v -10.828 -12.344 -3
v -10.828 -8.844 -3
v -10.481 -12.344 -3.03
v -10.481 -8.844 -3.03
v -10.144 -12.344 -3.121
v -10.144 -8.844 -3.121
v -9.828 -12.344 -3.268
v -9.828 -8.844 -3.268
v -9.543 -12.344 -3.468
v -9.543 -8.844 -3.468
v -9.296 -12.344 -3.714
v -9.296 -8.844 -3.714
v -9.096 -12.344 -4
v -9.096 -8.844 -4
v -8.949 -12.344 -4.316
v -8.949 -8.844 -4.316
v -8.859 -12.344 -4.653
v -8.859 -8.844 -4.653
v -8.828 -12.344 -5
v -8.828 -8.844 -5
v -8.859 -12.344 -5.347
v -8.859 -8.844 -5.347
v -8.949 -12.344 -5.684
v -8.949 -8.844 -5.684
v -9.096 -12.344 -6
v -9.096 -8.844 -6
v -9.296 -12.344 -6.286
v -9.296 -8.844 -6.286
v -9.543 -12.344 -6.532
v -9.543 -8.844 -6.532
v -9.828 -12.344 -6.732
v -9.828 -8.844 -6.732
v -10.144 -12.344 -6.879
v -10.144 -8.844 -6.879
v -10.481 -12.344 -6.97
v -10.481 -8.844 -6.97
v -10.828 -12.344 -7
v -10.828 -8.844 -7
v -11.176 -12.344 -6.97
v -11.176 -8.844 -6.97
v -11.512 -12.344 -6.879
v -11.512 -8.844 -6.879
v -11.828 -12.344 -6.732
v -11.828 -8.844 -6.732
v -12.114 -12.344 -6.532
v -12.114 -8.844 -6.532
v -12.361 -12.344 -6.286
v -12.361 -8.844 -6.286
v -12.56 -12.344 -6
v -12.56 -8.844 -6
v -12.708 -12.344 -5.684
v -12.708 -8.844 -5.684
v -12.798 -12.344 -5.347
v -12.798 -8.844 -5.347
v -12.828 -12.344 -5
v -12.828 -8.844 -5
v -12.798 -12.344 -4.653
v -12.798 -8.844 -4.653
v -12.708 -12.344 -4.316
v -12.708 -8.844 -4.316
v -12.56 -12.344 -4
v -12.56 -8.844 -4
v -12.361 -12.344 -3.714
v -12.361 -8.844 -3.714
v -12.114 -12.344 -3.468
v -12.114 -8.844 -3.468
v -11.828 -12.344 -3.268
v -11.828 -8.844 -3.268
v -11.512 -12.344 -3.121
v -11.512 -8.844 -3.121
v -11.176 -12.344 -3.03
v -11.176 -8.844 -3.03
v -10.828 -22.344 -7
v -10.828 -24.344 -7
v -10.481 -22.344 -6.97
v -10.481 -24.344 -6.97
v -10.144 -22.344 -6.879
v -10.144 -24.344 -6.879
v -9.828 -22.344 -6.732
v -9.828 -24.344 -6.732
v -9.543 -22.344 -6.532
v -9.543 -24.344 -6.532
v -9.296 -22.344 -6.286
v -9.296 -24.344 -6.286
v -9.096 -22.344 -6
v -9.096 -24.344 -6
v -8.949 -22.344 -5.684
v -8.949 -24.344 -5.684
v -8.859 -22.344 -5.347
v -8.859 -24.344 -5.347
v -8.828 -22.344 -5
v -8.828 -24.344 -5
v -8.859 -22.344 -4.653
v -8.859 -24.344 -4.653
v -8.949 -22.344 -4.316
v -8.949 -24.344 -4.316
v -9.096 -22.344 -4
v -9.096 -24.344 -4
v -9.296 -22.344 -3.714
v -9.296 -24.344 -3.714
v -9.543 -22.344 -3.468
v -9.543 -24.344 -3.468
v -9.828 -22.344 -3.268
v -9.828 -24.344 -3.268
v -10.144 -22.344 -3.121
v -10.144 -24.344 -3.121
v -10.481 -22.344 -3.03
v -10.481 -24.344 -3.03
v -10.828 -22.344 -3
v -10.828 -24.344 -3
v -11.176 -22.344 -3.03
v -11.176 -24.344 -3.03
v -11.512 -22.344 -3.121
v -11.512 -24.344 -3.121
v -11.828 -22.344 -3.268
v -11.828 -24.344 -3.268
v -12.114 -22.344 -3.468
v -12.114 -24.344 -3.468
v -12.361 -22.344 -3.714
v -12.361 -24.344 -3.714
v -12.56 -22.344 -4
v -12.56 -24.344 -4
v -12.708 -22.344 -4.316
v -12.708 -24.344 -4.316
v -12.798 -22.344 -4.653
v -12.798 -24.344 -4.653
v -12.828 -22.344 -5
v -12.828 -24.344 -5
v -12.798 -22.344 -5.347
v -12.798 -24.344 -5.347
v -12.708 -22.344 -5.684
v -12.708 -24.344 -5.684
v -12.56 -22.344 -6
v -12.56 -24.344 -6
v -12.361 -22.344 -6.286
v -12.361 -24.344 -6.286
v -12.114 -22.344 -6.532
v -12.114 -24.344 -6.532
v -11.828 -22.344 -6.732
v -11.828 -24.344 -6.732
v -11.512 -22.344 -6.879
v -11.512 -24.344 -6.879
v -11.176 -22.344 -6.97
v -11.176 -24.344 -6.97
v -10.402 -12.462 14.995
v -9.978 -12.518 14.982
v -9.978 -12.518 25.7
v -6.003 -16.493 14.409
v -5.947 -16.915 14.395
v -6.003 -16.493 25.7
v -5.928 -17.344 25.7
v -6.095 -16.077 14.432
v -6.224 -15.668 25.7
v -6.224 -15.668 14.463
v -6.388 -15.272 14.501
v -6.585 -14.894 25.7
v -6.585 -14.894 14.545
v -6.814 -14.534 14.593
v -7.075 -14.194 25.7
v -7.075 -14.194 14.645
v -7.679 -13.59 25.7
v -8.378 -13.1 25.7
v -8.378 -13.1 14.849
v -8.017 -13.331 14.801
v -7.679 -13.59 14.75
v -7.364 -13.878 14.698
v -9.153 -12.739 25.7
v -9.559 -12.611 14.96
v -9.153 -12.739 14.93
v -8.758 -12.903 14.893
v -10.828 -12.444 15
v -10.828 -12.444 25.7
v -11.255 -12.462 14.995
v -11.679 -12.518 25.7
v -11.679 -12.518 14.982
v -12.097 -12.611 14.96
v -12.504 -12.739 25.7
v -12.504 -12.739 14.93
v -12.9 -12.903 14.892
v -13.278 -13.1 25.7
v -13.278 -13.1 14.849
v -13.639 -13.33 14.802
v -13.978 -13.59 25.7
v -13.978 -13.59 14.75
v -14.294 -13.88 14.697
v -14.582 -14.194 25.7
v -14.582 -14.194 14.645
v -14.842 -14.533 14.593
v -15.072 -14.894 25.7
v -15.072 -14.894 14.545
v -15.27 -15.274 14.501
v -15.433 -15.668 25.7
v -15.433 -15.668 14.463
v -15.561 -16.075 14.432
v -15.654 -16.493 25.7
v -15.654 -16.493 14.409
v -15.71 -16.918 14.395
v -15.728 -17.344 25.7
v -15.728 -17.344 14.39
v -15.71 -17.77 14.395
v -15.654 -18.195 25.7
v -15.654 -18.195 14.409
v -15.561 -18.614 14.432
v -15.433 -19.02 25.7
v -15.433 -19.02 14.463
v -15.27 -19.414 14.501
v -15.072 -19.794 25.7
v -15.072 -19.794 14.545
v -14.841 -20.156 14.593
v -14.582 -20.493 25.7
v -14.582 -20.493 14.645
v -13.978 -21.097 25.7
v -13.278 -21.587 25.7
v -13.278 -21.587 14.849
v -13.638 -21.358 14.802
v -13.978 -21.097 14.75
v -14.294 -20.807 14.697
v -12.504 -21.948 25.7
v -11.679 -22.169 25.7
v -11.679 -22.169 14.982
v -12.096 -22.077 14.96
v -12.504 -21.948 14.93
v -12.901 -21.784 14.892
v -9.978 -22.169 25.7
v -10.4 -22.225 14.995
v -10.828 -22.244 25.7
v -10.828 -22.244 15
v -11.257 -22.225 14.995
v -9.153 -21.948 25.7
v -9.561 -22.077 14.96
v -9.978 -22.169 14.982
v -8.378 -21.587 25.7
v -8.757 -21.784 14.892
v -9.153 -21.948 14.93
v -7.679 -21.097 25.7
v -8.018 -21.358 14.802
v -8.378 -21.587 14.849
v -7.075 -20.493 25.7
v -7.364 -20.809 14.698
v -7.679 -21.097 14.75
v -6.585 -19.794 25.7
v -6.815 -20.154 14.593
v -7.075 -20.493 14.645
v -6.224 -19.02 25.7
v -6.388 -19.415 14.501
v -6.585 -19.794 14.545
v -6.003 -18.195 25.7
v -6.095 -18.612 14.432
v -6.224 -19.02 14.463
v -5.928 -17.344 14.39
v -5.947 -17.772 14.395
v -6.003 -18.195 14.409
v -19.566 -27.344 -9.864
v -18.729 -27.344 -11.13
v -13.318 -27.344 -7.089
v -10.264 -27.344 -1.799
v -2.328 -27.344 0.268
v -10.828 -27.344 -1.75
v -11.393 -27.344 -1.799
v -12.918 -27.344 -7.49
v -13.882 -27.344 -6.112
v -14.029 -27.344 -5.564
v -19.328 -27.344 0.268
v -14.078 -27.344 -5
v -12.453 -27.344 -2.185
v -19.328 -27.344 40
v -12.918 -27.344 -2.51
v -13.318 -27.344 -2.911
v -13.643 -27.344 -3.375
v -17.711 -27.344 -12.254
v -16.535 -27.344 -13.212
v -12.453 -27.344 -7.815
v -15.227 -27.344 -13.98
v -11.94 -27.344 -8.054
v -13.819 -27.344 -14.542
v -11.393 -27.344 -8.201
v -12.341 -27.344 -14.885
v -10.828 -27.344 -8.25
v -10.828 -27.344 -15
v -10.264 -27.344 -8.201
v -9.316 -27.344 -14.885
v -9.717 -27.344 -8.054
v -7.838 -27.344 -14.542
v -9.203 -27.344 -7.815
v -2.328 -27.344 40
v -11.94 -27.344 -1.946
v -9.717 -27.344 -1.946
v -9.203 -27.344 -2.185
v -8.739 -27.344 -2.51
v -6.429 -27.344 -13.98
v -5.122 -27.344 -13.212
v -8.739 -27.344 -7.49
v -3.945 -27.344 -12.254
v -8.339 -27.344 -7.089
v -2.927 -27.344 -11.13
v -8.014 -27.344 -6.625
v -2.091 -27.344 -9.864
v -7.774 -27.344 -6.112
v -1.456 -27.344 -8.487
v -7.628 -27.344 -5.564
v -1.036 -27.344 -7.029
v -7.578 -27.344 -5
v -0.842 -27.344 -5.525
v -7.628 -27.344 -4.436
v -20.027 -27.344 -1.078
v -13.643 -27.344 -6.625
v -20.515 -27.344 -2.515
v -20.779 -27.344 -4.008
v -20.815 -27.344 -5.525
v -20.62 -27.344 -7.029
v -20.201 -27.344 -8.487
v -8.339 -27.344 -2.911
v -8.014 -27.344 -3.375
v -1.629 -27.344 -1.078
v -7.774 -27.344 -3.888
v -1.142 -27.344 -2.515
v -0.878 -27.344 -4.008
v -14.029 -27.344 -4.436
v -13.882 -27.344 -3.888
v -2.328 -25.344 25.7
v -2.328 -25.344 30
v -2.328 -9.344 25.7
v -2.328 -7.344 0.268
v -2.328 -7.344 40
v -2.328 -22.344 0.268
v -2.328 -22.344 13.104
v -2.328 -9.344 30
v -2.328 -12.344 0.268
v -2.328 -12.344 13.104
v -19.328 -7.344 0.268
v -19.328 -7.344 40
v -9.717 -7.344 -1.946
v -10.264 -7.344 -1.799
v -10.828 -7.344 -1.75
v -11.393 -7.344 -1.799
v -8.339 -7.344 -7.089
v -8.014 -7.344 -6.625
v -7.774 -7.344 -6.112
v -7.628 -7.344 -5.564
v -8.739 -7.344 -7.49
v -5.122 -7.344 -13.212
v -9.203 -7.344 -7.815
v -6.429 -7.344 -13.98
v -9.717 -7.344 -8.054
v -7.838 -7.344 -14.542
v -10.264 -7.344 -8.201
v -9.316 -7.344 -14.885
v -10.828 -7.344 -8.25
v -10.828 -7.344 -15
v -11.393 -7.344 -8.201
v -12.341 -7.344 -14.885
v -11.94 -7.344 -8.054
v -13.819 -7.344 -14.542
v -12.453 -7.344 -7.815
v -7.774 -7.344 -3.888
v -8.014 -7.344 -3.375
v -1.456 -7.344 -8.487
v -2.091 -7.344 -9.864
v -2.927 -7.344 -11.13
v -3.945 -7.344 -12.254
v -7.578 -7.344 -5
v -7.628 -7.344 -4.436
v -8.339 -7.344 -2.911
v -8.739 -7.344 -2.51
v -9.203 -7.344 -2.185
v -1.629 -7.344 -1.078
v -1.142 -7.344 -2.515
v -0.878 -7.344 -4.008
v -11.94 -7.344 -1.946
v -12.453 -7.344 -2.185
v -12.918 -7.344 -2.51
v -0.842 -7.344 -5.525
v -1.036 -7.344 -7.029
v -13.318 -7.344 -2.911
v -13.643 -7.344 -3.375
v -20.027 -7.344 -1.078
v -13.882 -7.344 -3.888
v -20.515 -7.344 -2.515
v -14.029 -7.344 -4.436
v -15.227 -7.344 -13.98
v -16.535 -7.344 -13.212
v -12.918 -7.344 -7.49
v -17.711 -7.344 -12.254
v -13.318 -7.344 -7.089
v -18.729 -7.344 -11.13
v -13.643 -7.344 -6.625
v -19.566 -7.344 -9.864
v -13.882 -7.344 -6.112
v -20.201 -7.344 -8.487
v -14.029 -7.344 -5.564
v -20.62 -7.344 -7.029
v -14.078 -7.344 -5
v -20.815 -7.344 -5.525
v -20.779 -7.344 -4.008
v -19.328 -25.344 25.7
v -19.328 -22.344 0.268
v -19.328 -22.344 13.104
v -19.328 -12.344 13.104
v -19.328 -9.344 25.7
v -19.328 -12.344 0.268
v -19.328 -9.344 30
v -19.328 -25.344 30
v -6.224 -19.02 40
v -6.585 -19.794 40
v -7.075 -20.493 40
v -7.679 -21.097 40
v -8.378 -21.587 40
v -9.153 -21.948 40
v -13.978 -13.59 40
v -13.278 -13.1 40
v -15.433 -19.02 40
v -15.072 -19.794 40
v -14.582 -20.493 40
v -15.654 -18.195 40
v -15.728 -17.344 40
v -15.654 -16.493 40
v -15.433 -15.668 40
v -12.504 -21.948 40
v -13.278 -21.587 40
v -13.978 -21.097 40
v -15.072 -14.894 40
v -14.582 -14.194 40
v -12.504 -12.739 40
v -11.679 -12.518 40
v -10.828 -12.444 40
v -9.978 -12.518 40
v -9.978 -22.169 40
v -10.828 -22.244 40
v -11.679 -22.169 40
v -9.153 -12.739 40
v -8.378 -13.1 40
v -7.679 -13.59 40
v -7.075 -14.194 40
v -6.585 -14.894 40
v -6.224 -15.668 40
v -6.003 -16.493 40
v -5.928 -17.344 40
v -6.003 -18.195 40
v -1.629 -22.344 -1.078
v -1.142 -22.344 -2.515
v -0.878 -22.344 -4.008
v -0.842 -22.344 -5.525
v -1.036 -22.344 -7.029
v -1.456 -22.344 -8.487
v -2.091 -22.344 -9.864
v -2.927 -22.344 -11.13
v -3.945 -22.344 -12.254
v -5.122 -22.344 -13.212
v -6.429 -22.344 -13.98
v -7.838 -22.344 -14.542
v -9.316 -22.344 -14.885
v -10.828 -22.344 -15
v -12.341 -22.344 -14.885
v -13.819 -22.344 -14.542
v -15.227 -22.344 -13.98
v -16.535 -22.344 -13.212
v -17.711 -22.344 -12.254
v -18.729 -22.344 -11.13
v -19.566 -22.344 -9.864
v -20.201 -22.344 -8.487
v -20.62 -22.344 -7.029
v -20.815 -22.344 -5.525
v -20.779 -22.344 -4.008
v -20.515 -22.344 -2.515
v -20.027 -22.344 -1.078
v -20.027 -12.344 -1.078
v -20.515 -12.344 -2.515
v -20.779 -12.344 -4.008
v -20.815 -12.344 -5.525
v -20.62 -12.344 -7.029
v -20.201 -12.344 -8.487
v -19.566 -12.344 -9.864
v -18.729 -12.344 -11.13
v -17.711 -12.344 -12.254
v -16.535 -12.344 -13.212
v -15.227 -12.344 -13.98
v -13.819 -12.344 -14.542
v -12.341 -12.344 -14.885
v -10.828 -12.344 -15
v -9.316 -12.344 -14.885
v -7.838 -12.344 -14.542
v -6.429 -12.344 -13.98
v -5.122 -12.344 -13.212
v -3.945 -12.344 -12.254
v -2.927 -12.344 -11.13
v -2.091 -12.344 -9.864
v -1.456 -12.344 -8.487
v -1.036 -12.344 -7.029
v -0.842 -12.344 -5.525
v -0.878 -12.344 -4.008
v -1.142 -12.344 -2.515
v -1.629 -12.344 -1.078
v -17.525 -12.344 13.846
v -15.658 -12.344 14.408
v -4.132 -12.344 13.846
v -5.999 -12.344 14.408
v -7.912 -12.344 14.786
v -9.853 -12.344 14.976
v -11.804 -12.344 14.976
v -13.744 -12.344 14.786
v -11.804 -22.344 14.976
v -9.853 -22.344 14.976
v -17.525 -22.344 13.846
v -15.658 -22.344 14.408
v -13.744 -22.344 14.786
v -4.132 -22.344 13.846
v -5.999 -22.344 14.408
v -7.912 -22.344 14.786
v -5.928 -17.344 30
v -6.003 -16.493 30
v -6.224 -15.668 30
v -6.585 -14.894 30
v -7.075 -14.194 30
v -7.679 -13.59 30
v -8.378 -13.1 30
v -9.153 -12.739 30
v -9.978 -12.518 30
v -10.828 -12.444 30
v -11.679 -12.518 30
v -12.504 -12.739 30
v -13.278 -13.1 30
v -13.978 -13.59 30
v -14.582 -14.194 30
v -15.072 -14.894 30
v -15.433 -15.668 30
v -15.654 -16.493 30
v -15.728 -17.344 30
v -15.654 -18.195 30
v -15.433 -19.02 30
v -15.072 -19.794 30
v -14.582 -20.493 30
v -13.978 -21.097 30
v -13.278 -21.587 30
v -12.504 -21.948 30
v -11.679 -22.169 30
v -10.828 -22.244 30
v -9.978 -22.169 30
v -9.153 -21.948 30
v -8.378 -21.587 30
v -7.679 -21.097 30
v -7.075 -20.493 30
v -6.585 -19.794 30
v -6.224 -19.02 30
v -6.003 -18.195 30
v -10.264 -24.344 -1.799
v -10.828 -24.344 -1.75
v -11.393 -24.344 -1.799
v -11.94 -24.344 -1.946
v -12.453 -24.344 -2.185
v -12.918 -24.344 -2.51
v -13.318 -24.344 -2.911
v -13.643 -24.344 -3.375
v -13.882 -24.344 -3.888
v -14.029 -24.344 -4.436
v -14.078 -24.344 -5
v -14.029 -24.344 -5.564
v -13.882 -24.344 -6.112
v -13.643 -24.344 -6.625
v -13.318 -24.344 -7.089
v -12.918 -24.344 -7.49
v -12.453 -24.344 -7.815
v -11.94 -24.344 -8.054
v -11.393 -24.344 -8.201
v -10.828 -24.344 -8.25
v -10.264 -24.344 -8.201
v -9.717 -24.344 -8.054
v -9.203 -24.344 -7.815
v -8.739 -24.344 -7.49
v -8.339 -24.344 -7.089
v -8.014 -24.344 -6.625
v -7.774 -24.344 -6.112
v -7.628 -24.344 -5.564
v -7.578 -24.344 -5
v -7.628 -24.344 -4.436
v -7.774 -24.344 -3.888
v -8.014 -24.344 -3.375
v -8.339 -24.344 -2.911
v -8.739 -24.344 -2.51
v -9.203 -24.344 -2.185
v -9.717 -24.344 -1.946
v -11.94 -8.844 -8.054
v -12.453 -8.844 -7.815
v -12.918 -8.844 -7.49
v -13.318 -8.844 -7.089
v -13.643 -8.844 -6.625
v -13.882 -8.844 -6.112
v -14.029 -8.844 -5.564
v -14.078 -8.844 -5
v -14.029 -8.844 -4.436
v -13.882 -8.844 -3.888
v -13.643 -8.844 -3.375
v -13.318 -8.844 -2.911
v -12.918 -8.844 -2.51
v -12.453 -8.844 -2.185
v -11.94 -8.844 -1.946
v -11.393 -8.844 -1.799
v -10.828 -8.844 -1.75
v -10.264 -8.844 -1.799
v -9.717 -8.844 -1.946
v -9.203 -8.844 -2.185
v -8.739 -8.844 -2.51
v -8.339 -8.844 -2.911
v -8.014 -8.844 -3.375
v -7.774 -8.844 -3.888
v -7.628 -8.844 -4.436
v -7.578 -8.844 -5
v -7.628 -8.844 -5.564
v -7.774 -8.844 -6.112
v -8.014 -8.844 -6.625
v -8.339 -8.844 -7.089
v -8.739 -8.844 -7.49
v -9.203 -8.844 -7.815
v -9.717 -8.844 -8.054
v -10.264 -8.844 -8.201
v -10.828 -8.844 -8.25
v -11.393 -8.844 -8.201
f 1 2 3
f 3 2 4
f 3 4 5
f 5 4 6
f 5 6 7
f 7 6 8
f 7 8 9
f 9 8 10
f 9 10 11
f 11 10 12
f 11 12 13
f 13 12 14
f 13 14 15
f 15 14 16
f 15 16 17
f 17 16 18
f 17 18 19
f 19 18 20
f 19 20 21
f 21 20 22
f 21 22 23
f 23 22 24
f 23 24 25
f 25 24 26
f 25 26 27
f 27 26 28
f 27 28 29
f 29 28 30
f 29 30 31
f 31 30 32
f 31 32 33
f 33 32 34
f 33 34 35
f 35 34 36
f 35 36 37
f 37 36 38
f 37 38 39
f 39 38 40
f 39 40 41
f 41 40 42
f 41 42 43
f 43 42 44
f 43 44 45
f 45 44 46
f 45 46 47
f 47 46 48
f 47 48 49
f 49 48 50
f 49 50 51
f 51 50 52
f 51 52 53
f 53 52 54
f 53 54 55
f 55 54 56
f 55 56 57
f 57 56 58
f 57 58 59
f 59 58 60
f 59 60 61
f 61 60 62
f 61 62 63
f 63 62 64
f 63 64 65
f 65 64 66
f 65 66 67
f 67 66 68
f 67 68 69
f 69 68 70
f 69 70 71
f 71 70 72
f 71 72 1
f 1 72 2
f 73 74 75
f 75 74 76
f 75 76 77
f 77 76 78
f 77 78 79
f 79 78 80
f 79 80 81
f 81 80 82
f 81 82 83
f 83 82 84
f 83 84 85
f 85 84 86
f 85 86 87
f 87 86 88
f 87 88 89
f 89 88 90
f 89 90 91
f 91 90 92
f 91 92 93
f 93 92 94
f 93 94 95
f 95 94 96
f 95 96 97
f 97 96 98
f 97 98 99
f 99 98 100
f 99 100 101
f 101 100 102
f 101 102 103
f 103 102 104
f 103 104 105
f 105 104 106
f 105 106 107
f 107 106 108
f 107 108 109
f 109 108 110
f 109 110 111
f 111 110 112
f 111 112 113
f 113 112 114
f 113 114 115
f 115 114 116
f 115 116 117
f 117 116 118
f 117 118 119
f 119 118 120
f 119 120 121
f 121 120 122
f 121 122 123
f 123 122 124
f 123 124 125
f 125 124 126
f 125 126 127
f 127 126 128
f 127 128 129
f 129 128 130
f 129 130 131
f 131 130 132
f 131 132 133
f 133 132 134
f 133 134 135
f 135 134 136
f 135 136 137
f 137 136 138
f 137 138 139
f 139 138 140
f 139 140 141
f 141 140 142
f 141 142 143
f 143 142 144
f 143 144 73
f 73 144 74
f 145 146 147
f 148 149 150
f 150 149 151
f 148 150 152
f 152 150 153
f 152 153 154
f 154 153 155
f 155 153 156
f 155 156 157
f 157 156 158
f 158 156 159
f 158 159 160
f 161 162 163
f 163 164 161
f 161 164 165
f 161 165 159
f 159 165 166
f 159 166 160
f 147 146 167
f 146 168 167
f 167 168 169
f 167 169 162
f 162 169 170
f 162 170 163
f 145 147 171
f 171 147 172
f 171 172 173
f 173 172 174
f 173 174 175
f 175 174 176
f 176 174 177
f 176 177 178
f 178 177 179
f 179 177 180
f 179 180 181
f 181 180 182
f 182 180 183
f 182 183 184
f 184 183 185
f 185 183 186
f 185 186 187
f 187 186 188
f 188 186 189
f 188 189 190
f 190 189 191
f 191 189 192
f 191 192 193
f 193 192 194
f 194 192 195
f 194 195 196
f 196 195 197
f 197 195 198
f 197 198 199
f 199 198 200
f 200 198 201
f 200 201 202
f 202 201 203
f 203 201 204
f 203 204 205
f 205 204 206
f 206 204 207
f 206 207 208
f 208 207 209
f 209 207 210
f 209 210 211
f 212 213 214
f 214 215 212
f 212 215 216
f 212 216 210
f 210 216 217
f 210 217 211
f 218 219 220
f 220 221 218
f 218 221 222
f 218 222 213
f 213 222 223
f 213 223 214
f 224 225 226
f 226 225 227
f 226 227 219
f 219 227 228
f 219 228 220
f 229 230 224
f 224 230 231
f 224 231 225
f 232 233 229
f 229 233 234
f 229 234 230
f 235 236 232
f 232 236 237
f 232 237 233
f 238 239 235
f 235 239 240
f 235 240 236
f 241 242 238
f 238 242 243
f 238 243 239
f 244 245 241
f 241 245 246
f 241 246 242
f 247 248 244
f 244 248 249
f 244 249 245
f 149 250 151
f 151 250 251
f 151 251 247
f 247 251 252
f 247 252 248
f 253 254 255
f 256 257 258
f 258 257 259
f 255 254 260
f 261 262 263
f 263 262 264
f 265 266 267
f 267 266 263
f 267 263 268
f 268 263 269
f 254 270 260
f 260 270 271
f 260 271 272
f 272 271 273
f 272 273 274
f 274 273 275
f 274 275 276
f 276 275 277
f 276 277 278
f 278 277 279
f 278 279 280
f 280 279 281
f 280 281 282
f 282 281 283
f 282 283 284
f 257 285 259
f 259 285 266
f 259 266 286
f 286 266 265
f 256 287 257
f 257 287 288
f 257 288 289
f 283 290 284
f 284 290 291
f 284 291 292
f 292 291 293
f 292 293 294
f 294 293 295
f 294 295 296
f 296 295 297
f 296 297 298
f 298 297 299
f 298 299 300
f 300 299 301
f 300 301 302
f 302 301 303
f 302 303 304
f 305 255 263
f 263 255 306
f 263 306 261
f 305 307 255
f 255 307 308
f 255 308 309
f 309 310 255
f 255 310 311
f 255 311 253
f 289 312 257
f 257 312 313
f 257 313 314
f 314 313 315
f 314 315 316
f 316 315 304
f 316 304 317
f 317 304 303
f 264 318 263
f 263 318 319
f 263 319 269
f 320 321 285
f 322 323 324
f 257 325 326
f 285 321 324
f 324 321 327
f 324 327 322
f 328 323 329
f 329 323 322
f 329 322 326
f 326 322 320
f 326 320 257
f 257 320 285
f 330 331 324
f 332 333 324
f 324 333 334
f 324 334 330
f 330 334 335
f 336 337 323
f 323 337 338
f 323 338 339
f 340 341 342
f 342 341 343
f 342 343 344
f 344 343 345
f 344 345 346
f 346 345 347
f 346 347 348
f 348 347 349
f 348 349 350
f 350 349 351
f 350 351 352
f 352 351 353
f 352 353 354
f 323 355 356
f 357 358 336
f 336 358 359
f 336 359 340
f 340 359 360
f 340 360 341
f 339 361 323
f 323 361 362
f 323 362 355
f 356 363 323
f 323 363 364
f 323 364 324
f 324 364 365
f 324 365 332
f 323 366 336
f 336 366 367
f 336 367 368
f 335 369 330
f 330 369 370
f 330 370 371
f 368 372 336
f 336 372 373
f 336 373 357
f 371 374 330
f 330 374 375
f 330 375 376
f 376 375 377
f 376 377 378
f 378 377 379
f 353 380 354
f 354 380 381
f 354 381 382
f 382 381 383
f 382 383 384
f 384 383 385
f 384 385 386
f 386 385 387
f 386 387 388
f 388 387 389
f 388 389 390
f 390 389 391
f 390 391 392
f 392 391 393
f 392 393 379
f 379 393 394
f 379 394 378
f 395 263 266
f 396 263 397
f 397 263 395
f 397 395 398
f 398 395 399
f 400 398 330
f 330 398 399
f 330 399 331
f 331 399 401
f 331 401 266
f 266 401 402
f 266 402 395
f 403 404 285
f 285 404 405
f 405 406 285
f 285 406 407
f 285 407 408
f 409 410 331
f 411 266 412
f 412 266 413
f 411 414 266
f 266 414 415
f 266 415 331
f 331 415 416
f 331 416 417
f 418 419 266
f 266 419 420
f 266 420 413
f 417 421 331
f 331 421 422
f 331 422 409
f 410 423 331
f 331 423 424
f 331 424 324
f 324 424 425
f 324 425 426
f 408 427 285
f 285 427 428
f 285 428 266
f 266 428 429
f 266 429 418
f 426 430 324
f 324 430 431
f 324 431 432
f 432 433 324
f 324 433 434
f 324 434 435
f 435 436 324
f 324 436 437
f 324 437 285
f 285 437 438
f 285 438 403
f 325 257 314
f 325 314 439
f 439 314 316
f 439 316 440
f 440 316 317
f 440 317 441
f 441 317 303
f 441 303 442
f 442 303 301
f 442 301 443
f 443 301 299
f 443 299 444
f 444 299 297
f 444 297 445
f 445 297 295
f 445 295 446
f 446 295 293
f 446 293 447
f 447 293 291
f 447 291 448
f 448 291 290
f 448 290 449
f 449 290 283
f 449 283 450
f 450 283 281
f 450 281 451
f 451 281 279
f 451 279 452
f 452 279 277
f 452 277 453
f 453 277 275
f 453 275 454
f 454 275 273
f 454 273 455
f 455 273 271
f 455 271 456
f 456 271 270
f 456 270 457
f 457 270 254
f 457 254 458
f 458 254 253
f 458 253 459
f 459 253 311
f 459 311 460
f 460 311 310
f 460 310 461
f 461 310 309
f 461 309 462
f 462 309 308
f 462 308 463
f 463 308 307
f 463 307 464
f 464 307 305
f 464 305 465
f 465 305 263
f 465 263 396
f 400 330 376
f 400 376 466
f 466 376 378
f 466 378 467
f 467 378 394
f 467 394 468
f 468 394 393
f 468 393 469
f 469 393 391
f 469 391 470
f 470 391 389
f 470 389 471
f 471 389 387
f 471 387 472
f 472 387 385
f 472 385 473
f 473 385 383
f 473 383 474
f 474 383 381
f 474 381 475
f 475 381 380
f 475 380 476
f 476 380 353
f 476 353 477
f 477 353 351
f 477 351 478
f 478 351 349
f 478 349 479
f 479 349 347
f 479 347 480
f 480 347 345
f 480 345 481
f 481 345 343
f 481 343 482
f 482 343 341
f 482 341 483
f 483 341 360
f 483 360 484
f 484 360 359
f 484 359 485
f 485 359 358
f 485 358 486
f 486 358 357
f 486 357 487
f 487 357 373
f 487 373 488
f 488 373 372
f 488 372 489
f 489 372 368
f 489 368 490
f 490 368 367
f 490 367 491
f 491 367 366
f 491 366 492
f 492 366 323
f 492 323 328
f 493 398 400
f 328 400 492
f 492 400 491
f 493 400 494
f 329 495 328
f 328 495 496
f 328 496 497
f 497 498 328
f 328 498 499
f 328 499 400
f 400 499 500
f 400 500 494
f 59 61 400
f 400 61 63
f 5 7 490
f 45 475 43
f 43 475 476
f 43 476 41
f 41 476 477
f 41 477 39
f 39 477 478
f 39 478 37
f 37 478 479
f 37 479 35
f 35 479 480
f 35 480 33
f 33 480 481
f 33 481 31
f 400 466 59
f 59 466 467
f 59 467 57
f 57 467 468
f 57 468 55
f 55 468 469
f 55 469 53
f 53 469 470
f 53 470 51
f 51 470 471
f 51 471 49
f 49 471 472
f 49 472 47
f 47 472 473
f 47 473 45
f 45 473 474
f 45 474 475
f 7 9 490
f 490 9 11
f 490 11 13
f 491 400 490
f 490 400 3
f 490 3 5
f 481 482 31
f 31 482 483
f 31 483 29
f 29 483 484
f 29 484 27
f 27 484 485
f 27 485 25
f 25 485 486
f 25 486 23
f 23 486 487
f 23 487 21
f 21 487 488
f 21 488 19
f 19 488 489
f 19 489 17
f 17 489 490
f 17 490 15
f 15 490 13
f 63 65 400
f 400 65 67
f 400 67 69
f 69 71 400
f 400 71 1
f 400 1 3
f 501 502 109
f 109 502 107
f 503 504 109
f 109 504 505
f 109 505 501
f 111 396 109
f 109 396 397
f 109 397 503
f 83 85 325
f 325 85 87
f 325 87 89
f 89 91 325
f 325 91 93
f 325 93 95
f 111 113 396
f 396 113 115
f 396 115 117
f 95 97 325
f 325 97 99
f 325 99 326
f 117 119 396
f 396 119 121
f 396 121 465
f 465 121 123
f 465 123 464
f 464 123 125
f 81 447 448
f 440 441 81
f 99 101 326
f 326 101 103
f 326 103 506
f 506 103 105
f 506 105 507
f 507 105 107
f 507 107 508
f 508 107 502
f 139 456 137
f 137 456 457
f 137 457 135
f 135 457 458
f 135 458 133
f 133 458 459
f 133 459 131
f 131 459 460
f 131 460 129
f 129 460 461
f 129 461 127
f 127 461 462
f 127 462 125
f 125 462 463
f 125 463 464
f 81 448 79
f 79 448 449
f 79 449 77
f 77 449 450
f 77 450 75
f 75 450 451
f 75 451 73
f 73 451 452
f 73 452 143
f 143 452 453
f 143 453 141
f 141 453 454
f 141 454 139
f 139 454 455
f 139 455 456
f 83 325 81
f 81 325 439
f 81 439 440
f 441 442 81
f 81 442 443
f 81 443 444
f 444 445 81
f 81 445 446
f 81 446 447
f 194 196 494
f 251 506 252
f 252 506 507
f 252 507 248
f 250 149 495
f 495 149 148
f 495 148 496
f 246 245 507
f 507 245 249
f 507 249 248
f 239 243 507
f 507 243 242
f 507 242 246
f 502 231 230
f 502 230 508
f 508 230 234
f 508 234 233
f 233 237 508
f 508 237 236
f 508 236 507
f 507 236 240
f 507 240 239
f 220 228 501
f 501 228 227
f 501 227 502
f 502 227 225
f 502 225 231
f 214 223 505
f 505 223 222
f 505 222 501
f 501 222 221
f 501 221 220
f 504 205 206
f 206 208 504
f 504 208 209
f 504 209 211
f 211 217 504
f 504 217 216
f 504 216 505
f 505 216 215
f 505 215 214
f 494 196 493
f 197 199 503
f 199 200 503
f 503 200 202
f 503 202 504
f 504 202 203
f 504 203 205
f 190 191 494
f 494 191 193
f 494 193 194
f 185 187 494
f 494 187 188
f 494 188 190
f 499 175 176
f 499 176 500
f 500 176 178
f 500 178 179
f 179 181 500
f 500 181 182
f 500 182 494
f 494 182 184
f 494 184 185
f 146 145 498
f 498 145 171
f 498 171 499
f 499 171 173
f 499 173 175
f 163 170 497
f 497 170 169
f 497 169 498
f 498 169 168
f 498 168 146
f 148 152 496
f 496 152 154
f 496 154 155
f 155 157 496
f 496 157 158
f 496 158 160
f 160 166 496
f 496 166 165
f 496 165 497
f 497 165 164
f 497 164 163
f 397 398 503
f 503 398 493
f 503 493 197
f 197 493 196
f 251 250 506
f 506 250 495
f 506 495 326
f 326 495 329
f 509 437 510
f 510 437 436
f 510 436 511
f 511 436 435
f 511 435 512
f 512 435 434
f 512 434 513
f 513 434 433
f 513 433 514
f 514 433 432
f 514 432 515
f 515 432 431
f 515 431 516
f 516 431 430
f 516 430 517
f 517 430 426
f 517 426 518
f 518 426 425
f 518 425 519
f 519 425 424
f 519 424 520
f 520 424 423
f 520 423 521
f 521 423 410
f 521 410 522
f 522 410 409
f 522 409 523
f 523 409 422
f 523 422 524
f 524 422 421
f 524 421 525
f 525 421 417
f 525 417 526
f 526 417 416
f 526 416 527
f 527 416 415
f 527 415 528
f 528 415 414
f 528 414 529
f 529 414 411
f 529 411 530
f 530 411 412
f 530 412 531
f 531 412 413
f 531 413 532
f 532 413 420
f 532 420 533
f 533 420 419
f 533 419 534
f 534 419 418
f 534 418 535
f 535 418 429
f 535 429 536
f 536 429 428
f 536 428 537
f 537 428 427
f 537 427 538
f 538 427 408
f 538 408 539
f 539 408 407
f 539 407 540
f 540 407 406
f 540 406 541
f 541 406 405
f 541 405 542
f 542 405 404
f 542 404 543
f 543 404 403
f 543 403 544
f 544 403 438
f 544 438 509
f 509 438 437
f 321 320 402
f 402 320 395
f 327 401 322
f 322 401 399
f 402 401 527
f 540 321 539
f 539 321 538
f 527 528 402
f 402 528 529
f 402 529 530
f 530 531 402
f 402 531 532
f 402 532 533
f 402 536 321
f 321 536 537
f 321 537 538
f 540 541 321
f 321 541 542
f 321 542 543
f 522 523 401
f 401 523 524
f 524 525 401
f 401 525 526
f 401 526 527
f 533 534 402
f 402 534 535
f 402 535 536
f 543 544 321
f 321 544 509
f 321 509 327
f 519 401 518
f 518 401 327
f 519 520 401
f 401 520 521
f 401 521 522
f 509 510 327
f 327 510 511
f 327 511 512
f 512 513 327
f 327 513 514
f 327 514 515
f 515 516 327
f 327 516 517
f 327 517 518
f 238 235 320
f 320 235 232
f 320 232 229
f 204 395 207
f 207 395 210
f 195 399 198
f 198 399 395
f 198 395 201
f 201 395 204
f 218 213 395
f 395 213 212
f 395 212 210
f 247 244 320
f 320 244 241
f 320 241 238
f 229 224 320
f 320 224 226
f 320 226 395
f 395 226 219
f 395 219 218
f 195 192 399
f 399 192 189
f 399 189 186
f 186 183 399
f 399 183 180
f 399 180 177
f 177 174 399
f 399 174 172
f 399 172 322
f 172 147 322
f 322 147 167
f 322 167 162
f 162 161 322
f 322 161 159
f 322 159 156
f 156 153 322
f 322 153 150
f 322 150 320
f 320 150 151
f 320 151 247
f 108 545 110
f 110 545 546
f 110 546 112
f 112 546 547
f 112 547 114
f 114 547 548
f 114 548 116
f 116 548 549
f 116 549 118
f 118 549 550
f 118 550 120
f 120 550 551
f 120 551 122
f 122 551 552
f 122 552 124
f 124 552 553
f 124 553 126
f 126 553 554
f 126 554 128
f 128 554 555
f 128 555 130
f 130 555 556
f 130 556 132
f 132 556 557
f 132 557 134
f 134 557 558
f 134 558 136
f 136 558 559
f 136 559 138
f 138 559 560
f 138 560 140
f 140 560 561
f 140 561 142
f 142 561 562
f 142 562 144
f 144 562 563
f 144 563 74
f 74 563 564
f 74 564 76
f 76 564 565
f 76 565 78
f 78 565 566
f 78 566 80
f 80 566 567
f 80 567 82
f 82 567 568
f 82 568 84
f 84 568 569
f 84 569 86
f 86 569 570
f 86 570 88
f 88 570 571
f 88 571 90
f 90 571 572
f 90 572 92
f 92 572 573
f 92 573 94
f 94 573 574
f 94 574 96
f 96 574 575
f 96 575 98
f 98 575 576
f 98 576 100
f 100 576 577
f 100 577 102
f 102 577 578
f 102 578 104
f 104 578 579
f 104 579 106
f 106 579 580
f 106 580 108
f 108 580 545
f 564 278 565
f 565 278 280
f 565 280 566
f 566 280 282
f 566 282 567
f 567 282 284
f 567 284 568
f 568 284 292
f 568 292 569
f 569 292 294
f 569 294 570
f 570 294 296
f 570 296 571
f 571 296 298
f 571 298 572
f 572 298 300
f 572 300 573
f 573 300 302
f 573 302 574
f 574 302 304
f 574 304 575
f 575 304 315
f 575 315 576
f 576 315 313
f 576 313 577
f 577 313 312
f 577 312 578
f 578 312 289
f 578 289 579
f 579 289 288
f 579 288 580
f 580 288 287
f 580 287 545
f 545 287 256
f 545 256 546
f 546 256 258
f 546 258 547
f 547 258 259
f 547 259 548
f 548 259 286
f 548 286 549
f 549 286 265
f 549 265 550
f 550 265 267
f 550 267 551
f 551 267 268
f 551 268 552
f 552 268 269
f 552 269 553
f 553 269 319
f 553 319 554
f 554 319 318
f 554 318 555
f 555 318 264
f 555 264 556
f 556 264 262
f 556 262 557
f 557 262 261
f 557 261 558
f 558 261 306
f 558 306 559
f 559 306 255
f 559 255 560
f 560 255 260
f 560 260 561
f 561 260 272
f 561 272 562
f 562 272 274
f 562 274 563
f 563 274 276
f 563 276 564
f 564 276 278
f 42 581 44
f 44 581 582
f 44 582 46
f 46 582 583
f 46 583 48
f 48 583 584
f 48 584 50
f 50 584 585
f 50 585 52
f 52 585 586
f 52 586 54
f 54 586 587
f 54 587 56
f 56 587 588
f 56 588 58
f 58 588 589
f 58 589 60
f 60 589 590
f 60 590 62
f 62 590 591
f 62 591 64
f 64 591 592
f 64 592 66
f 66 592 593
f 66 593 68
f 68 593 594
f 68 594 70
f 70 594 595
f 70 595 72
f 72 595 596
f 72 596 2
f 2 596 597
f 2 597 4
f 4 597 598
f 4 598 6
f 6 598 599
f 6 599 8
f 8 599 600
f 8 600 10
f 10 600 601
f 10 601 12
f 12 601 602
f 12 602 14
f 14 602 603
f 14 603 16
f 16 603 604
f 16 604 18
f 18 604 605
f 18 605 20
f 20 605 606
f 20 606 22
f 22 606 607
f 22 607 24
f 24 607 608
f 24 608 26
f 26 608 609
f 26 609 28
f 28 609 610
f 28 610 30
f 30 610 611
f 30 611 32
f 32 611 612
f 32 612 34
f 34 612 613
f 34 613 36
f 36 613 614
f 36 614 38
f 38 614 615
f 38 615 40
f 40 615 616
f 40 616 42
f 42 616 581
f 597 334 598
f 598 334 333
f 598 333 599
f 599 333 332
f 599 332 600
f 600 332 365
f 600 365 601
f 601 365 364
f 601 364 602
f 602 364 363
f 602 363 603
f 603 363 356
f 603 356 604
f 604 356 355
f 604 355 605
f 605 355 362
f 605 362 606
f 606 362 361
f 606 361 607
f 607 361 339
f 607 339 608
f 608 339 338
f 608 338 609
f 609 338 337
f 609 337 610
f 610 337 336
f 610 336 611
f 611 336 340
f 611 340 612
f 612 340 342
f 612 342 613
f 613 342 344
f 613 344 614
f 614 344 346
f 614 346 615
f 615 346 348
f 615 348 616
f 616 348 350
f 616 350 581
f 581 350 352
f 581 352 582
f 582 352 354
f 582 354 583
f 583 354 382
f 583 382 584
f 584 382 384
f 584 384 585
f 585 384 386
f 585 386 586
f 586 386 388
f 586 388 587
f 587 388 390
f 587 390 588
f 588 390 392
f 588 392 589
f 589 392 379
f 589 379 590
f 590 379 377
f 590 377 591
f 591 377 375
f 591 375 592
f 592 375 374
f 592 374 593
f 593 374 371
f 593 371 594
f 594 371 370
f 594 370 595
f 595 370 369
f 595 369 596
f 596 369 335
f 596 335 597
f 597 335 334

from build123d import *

# Parameters (mm, degrees)
SKETCH_1_W               = 17
SKETCH_1_H               = 20
EXTRUDE_1_DEPTH          = 40
SKETCH_3_R               = 10
SKETCH_3_R_2             = 2
EXTRUDE_2_DEPTH          = 10
EXTRUDE_START            = -5
SKETCH_4_R               = 10
SKETCH_4_R_2             = 2
EXTRUDE_3_DEPTH          = 5
SKETCH_5_R               = 20
CUT_EXTRUDE_1_DEPTH      = 10
CUT_EXTRUDE_2_REACH      = 66.858
CUT_EXTRUDE_2_END_RADIUS = 20
SKETCH_6_R               = 4.9
CUT_EXTRUDE_3_REACH      = 53.865
SKETCH_7_W               = 4.3
SKETCH_7_H               = 16
SKETCH_8_R               = 3.25
CUT_EXTRUDE_4_DEPTH      = 3
CUT_EXTRUDE_START        = -1.5
SKETCH_9_R               = 3.25
CUT_EXTRUDE_5_DEPTH      = 1.5


with BuildPart() as part:
    # 草图1 → 凸台-拉伸1 (new body)
    with BuildSketch(Plane.XY):
        with Locations((-10.828446216, -17.343796091)):
            Rectangle(SKETCH_1_W, SKETCH_1_H)
    extrude(amount=EXTRUDE_1_DEPTH)

    # 草图3 → 凸台-拉伸2 (add)
    with BuildSketch(Plane.XZ.offset(27.343796091)):
        with Locations((-10.828446216, -5)):
            Circle(SKETCH_3_R)
        with Locations(Location((-10.828446216, -5, 0), (0, 0, 270))):
            Circle(SKETCH_3_R_2, mode=Mode.SUBTRACT)
    extrude(amount=-EXTRUDE_2_DEPTH)

    # 草图4 → 凸台-拉伸3 (add)
    with BuildSketch(Plane(origin=(0, -7.343796091, 0), x_dir=(1, 0, 0), z_dir=(0, 1, 0)).offset(EXTRUDE_START)):
        with Locations((-10.828446216, 5)):
            Circle(SKETCH_4_R)
        with Locations(Location((-10.828446216, 5, 0), (0, 0, 90))):
            Circle(SKETCH_4_R_2, mode=Mode.SUBTRACT)
    extrude(amount=EXTRUDE_3_DEPTH)

    # 草图5 → 切除-拉伸1 (cut)
    with BuildSketch(Plane.XZ.offset(12.343796091)):
        with Locations((-10.828446216, -5)):
            Circle(SKETCH_5_R)
    extrude(amount=CUT_EXTRUDE_1_DEPTH, mode=Mode.SUBTRACT)

    # 切除-拉伸2: up to this cylinder (the profile starts outside it)
    cut_extrude_2_end = Plane(origin=(-10.828446216, -17.343796, -5), z_dir=(0, 1, 0)) * Cylinder(CUT_EXTRUDE_2_END_RADIUS, 174.716, mode=Mode.PRIVATE)
    # 草图6 → 切除-拉伸2 (cut, up to the surface)
    with BuildSketch(Plane.XY.offset(40), mode=Mode.PRIVATE) as cut_extrude_2_sk1:
        with Locations((-10.828446216, -17.343796091)):
            Circle(SKETCH_6_R)
    cut_extrude_2_tool1 = extrude(cut_extrude_2_sk1.sketch, amount=-CUT_EXTRUDE_2_REACH, mode=Mode.PRIVATE) - cut_extrude_2_end
    add(cut_extrude_2_tool1.solids().sort_by_distance((-10.828446, -17.343796, 40))[0], mode=Mode.SUBTRACT)

    # 草图7 → 切除-拉伸3 (cut, up to next)
    with BuildSketch(Plane(origin=(-2.328446216, 0, 0), x_dir=(0, 0, -1), z_dir=(1, 0, 0)), mode=Mode.PRIVATE) as cut_extrude_3_sk1:
        with Locations((-27.85, -17.343796091)):
            Rectangle(SKETCH_7_W, SKETCH_7_H)
    cut_extrude_3_tool1 = extrude(cut_extrude_3_sk1.sketch, amount=-CUT_EXTRUDE_3_REACH, mode=Mode.PRIVATE) & part.part
    add(cut_extrude_3_tool1.solids().sort_by_distance((-2.328446, -17.343796, 27.85))[0], mode=Mode.SUBTRACT)

    # 草图8 → 切除-拉伸4 (cut)
    with BuildSketch(Plane.XZ.offset(27.343796091)):
        with Locations(Location((-10.828446216, -5, 0), (0, 0, 270))):
            Circle(SKETCH_8_R)
    extrude(amount=-CUT_EXTRUDE_4_DEPTH, mode=Mode.SUBTRACT)

    # 草图9 → 切除-拉伸5 (cut)
    with BuildSketch(Plane(origin=(0, -7.343796091, 0), x_dir=(1, 0, 0), z_dir=(0, 1, 0)).offset(CUT_EXTRUDE_START)):
        with Locations(Location((-10.828446216, 5, 0), (0, 0, 90))):
            Circle(SKETCH_9_R)
    extrude(amount=CUT_EXTRUDE_5_DEPTH, mode=Mode.SUBTRACT)


solid = part.part
